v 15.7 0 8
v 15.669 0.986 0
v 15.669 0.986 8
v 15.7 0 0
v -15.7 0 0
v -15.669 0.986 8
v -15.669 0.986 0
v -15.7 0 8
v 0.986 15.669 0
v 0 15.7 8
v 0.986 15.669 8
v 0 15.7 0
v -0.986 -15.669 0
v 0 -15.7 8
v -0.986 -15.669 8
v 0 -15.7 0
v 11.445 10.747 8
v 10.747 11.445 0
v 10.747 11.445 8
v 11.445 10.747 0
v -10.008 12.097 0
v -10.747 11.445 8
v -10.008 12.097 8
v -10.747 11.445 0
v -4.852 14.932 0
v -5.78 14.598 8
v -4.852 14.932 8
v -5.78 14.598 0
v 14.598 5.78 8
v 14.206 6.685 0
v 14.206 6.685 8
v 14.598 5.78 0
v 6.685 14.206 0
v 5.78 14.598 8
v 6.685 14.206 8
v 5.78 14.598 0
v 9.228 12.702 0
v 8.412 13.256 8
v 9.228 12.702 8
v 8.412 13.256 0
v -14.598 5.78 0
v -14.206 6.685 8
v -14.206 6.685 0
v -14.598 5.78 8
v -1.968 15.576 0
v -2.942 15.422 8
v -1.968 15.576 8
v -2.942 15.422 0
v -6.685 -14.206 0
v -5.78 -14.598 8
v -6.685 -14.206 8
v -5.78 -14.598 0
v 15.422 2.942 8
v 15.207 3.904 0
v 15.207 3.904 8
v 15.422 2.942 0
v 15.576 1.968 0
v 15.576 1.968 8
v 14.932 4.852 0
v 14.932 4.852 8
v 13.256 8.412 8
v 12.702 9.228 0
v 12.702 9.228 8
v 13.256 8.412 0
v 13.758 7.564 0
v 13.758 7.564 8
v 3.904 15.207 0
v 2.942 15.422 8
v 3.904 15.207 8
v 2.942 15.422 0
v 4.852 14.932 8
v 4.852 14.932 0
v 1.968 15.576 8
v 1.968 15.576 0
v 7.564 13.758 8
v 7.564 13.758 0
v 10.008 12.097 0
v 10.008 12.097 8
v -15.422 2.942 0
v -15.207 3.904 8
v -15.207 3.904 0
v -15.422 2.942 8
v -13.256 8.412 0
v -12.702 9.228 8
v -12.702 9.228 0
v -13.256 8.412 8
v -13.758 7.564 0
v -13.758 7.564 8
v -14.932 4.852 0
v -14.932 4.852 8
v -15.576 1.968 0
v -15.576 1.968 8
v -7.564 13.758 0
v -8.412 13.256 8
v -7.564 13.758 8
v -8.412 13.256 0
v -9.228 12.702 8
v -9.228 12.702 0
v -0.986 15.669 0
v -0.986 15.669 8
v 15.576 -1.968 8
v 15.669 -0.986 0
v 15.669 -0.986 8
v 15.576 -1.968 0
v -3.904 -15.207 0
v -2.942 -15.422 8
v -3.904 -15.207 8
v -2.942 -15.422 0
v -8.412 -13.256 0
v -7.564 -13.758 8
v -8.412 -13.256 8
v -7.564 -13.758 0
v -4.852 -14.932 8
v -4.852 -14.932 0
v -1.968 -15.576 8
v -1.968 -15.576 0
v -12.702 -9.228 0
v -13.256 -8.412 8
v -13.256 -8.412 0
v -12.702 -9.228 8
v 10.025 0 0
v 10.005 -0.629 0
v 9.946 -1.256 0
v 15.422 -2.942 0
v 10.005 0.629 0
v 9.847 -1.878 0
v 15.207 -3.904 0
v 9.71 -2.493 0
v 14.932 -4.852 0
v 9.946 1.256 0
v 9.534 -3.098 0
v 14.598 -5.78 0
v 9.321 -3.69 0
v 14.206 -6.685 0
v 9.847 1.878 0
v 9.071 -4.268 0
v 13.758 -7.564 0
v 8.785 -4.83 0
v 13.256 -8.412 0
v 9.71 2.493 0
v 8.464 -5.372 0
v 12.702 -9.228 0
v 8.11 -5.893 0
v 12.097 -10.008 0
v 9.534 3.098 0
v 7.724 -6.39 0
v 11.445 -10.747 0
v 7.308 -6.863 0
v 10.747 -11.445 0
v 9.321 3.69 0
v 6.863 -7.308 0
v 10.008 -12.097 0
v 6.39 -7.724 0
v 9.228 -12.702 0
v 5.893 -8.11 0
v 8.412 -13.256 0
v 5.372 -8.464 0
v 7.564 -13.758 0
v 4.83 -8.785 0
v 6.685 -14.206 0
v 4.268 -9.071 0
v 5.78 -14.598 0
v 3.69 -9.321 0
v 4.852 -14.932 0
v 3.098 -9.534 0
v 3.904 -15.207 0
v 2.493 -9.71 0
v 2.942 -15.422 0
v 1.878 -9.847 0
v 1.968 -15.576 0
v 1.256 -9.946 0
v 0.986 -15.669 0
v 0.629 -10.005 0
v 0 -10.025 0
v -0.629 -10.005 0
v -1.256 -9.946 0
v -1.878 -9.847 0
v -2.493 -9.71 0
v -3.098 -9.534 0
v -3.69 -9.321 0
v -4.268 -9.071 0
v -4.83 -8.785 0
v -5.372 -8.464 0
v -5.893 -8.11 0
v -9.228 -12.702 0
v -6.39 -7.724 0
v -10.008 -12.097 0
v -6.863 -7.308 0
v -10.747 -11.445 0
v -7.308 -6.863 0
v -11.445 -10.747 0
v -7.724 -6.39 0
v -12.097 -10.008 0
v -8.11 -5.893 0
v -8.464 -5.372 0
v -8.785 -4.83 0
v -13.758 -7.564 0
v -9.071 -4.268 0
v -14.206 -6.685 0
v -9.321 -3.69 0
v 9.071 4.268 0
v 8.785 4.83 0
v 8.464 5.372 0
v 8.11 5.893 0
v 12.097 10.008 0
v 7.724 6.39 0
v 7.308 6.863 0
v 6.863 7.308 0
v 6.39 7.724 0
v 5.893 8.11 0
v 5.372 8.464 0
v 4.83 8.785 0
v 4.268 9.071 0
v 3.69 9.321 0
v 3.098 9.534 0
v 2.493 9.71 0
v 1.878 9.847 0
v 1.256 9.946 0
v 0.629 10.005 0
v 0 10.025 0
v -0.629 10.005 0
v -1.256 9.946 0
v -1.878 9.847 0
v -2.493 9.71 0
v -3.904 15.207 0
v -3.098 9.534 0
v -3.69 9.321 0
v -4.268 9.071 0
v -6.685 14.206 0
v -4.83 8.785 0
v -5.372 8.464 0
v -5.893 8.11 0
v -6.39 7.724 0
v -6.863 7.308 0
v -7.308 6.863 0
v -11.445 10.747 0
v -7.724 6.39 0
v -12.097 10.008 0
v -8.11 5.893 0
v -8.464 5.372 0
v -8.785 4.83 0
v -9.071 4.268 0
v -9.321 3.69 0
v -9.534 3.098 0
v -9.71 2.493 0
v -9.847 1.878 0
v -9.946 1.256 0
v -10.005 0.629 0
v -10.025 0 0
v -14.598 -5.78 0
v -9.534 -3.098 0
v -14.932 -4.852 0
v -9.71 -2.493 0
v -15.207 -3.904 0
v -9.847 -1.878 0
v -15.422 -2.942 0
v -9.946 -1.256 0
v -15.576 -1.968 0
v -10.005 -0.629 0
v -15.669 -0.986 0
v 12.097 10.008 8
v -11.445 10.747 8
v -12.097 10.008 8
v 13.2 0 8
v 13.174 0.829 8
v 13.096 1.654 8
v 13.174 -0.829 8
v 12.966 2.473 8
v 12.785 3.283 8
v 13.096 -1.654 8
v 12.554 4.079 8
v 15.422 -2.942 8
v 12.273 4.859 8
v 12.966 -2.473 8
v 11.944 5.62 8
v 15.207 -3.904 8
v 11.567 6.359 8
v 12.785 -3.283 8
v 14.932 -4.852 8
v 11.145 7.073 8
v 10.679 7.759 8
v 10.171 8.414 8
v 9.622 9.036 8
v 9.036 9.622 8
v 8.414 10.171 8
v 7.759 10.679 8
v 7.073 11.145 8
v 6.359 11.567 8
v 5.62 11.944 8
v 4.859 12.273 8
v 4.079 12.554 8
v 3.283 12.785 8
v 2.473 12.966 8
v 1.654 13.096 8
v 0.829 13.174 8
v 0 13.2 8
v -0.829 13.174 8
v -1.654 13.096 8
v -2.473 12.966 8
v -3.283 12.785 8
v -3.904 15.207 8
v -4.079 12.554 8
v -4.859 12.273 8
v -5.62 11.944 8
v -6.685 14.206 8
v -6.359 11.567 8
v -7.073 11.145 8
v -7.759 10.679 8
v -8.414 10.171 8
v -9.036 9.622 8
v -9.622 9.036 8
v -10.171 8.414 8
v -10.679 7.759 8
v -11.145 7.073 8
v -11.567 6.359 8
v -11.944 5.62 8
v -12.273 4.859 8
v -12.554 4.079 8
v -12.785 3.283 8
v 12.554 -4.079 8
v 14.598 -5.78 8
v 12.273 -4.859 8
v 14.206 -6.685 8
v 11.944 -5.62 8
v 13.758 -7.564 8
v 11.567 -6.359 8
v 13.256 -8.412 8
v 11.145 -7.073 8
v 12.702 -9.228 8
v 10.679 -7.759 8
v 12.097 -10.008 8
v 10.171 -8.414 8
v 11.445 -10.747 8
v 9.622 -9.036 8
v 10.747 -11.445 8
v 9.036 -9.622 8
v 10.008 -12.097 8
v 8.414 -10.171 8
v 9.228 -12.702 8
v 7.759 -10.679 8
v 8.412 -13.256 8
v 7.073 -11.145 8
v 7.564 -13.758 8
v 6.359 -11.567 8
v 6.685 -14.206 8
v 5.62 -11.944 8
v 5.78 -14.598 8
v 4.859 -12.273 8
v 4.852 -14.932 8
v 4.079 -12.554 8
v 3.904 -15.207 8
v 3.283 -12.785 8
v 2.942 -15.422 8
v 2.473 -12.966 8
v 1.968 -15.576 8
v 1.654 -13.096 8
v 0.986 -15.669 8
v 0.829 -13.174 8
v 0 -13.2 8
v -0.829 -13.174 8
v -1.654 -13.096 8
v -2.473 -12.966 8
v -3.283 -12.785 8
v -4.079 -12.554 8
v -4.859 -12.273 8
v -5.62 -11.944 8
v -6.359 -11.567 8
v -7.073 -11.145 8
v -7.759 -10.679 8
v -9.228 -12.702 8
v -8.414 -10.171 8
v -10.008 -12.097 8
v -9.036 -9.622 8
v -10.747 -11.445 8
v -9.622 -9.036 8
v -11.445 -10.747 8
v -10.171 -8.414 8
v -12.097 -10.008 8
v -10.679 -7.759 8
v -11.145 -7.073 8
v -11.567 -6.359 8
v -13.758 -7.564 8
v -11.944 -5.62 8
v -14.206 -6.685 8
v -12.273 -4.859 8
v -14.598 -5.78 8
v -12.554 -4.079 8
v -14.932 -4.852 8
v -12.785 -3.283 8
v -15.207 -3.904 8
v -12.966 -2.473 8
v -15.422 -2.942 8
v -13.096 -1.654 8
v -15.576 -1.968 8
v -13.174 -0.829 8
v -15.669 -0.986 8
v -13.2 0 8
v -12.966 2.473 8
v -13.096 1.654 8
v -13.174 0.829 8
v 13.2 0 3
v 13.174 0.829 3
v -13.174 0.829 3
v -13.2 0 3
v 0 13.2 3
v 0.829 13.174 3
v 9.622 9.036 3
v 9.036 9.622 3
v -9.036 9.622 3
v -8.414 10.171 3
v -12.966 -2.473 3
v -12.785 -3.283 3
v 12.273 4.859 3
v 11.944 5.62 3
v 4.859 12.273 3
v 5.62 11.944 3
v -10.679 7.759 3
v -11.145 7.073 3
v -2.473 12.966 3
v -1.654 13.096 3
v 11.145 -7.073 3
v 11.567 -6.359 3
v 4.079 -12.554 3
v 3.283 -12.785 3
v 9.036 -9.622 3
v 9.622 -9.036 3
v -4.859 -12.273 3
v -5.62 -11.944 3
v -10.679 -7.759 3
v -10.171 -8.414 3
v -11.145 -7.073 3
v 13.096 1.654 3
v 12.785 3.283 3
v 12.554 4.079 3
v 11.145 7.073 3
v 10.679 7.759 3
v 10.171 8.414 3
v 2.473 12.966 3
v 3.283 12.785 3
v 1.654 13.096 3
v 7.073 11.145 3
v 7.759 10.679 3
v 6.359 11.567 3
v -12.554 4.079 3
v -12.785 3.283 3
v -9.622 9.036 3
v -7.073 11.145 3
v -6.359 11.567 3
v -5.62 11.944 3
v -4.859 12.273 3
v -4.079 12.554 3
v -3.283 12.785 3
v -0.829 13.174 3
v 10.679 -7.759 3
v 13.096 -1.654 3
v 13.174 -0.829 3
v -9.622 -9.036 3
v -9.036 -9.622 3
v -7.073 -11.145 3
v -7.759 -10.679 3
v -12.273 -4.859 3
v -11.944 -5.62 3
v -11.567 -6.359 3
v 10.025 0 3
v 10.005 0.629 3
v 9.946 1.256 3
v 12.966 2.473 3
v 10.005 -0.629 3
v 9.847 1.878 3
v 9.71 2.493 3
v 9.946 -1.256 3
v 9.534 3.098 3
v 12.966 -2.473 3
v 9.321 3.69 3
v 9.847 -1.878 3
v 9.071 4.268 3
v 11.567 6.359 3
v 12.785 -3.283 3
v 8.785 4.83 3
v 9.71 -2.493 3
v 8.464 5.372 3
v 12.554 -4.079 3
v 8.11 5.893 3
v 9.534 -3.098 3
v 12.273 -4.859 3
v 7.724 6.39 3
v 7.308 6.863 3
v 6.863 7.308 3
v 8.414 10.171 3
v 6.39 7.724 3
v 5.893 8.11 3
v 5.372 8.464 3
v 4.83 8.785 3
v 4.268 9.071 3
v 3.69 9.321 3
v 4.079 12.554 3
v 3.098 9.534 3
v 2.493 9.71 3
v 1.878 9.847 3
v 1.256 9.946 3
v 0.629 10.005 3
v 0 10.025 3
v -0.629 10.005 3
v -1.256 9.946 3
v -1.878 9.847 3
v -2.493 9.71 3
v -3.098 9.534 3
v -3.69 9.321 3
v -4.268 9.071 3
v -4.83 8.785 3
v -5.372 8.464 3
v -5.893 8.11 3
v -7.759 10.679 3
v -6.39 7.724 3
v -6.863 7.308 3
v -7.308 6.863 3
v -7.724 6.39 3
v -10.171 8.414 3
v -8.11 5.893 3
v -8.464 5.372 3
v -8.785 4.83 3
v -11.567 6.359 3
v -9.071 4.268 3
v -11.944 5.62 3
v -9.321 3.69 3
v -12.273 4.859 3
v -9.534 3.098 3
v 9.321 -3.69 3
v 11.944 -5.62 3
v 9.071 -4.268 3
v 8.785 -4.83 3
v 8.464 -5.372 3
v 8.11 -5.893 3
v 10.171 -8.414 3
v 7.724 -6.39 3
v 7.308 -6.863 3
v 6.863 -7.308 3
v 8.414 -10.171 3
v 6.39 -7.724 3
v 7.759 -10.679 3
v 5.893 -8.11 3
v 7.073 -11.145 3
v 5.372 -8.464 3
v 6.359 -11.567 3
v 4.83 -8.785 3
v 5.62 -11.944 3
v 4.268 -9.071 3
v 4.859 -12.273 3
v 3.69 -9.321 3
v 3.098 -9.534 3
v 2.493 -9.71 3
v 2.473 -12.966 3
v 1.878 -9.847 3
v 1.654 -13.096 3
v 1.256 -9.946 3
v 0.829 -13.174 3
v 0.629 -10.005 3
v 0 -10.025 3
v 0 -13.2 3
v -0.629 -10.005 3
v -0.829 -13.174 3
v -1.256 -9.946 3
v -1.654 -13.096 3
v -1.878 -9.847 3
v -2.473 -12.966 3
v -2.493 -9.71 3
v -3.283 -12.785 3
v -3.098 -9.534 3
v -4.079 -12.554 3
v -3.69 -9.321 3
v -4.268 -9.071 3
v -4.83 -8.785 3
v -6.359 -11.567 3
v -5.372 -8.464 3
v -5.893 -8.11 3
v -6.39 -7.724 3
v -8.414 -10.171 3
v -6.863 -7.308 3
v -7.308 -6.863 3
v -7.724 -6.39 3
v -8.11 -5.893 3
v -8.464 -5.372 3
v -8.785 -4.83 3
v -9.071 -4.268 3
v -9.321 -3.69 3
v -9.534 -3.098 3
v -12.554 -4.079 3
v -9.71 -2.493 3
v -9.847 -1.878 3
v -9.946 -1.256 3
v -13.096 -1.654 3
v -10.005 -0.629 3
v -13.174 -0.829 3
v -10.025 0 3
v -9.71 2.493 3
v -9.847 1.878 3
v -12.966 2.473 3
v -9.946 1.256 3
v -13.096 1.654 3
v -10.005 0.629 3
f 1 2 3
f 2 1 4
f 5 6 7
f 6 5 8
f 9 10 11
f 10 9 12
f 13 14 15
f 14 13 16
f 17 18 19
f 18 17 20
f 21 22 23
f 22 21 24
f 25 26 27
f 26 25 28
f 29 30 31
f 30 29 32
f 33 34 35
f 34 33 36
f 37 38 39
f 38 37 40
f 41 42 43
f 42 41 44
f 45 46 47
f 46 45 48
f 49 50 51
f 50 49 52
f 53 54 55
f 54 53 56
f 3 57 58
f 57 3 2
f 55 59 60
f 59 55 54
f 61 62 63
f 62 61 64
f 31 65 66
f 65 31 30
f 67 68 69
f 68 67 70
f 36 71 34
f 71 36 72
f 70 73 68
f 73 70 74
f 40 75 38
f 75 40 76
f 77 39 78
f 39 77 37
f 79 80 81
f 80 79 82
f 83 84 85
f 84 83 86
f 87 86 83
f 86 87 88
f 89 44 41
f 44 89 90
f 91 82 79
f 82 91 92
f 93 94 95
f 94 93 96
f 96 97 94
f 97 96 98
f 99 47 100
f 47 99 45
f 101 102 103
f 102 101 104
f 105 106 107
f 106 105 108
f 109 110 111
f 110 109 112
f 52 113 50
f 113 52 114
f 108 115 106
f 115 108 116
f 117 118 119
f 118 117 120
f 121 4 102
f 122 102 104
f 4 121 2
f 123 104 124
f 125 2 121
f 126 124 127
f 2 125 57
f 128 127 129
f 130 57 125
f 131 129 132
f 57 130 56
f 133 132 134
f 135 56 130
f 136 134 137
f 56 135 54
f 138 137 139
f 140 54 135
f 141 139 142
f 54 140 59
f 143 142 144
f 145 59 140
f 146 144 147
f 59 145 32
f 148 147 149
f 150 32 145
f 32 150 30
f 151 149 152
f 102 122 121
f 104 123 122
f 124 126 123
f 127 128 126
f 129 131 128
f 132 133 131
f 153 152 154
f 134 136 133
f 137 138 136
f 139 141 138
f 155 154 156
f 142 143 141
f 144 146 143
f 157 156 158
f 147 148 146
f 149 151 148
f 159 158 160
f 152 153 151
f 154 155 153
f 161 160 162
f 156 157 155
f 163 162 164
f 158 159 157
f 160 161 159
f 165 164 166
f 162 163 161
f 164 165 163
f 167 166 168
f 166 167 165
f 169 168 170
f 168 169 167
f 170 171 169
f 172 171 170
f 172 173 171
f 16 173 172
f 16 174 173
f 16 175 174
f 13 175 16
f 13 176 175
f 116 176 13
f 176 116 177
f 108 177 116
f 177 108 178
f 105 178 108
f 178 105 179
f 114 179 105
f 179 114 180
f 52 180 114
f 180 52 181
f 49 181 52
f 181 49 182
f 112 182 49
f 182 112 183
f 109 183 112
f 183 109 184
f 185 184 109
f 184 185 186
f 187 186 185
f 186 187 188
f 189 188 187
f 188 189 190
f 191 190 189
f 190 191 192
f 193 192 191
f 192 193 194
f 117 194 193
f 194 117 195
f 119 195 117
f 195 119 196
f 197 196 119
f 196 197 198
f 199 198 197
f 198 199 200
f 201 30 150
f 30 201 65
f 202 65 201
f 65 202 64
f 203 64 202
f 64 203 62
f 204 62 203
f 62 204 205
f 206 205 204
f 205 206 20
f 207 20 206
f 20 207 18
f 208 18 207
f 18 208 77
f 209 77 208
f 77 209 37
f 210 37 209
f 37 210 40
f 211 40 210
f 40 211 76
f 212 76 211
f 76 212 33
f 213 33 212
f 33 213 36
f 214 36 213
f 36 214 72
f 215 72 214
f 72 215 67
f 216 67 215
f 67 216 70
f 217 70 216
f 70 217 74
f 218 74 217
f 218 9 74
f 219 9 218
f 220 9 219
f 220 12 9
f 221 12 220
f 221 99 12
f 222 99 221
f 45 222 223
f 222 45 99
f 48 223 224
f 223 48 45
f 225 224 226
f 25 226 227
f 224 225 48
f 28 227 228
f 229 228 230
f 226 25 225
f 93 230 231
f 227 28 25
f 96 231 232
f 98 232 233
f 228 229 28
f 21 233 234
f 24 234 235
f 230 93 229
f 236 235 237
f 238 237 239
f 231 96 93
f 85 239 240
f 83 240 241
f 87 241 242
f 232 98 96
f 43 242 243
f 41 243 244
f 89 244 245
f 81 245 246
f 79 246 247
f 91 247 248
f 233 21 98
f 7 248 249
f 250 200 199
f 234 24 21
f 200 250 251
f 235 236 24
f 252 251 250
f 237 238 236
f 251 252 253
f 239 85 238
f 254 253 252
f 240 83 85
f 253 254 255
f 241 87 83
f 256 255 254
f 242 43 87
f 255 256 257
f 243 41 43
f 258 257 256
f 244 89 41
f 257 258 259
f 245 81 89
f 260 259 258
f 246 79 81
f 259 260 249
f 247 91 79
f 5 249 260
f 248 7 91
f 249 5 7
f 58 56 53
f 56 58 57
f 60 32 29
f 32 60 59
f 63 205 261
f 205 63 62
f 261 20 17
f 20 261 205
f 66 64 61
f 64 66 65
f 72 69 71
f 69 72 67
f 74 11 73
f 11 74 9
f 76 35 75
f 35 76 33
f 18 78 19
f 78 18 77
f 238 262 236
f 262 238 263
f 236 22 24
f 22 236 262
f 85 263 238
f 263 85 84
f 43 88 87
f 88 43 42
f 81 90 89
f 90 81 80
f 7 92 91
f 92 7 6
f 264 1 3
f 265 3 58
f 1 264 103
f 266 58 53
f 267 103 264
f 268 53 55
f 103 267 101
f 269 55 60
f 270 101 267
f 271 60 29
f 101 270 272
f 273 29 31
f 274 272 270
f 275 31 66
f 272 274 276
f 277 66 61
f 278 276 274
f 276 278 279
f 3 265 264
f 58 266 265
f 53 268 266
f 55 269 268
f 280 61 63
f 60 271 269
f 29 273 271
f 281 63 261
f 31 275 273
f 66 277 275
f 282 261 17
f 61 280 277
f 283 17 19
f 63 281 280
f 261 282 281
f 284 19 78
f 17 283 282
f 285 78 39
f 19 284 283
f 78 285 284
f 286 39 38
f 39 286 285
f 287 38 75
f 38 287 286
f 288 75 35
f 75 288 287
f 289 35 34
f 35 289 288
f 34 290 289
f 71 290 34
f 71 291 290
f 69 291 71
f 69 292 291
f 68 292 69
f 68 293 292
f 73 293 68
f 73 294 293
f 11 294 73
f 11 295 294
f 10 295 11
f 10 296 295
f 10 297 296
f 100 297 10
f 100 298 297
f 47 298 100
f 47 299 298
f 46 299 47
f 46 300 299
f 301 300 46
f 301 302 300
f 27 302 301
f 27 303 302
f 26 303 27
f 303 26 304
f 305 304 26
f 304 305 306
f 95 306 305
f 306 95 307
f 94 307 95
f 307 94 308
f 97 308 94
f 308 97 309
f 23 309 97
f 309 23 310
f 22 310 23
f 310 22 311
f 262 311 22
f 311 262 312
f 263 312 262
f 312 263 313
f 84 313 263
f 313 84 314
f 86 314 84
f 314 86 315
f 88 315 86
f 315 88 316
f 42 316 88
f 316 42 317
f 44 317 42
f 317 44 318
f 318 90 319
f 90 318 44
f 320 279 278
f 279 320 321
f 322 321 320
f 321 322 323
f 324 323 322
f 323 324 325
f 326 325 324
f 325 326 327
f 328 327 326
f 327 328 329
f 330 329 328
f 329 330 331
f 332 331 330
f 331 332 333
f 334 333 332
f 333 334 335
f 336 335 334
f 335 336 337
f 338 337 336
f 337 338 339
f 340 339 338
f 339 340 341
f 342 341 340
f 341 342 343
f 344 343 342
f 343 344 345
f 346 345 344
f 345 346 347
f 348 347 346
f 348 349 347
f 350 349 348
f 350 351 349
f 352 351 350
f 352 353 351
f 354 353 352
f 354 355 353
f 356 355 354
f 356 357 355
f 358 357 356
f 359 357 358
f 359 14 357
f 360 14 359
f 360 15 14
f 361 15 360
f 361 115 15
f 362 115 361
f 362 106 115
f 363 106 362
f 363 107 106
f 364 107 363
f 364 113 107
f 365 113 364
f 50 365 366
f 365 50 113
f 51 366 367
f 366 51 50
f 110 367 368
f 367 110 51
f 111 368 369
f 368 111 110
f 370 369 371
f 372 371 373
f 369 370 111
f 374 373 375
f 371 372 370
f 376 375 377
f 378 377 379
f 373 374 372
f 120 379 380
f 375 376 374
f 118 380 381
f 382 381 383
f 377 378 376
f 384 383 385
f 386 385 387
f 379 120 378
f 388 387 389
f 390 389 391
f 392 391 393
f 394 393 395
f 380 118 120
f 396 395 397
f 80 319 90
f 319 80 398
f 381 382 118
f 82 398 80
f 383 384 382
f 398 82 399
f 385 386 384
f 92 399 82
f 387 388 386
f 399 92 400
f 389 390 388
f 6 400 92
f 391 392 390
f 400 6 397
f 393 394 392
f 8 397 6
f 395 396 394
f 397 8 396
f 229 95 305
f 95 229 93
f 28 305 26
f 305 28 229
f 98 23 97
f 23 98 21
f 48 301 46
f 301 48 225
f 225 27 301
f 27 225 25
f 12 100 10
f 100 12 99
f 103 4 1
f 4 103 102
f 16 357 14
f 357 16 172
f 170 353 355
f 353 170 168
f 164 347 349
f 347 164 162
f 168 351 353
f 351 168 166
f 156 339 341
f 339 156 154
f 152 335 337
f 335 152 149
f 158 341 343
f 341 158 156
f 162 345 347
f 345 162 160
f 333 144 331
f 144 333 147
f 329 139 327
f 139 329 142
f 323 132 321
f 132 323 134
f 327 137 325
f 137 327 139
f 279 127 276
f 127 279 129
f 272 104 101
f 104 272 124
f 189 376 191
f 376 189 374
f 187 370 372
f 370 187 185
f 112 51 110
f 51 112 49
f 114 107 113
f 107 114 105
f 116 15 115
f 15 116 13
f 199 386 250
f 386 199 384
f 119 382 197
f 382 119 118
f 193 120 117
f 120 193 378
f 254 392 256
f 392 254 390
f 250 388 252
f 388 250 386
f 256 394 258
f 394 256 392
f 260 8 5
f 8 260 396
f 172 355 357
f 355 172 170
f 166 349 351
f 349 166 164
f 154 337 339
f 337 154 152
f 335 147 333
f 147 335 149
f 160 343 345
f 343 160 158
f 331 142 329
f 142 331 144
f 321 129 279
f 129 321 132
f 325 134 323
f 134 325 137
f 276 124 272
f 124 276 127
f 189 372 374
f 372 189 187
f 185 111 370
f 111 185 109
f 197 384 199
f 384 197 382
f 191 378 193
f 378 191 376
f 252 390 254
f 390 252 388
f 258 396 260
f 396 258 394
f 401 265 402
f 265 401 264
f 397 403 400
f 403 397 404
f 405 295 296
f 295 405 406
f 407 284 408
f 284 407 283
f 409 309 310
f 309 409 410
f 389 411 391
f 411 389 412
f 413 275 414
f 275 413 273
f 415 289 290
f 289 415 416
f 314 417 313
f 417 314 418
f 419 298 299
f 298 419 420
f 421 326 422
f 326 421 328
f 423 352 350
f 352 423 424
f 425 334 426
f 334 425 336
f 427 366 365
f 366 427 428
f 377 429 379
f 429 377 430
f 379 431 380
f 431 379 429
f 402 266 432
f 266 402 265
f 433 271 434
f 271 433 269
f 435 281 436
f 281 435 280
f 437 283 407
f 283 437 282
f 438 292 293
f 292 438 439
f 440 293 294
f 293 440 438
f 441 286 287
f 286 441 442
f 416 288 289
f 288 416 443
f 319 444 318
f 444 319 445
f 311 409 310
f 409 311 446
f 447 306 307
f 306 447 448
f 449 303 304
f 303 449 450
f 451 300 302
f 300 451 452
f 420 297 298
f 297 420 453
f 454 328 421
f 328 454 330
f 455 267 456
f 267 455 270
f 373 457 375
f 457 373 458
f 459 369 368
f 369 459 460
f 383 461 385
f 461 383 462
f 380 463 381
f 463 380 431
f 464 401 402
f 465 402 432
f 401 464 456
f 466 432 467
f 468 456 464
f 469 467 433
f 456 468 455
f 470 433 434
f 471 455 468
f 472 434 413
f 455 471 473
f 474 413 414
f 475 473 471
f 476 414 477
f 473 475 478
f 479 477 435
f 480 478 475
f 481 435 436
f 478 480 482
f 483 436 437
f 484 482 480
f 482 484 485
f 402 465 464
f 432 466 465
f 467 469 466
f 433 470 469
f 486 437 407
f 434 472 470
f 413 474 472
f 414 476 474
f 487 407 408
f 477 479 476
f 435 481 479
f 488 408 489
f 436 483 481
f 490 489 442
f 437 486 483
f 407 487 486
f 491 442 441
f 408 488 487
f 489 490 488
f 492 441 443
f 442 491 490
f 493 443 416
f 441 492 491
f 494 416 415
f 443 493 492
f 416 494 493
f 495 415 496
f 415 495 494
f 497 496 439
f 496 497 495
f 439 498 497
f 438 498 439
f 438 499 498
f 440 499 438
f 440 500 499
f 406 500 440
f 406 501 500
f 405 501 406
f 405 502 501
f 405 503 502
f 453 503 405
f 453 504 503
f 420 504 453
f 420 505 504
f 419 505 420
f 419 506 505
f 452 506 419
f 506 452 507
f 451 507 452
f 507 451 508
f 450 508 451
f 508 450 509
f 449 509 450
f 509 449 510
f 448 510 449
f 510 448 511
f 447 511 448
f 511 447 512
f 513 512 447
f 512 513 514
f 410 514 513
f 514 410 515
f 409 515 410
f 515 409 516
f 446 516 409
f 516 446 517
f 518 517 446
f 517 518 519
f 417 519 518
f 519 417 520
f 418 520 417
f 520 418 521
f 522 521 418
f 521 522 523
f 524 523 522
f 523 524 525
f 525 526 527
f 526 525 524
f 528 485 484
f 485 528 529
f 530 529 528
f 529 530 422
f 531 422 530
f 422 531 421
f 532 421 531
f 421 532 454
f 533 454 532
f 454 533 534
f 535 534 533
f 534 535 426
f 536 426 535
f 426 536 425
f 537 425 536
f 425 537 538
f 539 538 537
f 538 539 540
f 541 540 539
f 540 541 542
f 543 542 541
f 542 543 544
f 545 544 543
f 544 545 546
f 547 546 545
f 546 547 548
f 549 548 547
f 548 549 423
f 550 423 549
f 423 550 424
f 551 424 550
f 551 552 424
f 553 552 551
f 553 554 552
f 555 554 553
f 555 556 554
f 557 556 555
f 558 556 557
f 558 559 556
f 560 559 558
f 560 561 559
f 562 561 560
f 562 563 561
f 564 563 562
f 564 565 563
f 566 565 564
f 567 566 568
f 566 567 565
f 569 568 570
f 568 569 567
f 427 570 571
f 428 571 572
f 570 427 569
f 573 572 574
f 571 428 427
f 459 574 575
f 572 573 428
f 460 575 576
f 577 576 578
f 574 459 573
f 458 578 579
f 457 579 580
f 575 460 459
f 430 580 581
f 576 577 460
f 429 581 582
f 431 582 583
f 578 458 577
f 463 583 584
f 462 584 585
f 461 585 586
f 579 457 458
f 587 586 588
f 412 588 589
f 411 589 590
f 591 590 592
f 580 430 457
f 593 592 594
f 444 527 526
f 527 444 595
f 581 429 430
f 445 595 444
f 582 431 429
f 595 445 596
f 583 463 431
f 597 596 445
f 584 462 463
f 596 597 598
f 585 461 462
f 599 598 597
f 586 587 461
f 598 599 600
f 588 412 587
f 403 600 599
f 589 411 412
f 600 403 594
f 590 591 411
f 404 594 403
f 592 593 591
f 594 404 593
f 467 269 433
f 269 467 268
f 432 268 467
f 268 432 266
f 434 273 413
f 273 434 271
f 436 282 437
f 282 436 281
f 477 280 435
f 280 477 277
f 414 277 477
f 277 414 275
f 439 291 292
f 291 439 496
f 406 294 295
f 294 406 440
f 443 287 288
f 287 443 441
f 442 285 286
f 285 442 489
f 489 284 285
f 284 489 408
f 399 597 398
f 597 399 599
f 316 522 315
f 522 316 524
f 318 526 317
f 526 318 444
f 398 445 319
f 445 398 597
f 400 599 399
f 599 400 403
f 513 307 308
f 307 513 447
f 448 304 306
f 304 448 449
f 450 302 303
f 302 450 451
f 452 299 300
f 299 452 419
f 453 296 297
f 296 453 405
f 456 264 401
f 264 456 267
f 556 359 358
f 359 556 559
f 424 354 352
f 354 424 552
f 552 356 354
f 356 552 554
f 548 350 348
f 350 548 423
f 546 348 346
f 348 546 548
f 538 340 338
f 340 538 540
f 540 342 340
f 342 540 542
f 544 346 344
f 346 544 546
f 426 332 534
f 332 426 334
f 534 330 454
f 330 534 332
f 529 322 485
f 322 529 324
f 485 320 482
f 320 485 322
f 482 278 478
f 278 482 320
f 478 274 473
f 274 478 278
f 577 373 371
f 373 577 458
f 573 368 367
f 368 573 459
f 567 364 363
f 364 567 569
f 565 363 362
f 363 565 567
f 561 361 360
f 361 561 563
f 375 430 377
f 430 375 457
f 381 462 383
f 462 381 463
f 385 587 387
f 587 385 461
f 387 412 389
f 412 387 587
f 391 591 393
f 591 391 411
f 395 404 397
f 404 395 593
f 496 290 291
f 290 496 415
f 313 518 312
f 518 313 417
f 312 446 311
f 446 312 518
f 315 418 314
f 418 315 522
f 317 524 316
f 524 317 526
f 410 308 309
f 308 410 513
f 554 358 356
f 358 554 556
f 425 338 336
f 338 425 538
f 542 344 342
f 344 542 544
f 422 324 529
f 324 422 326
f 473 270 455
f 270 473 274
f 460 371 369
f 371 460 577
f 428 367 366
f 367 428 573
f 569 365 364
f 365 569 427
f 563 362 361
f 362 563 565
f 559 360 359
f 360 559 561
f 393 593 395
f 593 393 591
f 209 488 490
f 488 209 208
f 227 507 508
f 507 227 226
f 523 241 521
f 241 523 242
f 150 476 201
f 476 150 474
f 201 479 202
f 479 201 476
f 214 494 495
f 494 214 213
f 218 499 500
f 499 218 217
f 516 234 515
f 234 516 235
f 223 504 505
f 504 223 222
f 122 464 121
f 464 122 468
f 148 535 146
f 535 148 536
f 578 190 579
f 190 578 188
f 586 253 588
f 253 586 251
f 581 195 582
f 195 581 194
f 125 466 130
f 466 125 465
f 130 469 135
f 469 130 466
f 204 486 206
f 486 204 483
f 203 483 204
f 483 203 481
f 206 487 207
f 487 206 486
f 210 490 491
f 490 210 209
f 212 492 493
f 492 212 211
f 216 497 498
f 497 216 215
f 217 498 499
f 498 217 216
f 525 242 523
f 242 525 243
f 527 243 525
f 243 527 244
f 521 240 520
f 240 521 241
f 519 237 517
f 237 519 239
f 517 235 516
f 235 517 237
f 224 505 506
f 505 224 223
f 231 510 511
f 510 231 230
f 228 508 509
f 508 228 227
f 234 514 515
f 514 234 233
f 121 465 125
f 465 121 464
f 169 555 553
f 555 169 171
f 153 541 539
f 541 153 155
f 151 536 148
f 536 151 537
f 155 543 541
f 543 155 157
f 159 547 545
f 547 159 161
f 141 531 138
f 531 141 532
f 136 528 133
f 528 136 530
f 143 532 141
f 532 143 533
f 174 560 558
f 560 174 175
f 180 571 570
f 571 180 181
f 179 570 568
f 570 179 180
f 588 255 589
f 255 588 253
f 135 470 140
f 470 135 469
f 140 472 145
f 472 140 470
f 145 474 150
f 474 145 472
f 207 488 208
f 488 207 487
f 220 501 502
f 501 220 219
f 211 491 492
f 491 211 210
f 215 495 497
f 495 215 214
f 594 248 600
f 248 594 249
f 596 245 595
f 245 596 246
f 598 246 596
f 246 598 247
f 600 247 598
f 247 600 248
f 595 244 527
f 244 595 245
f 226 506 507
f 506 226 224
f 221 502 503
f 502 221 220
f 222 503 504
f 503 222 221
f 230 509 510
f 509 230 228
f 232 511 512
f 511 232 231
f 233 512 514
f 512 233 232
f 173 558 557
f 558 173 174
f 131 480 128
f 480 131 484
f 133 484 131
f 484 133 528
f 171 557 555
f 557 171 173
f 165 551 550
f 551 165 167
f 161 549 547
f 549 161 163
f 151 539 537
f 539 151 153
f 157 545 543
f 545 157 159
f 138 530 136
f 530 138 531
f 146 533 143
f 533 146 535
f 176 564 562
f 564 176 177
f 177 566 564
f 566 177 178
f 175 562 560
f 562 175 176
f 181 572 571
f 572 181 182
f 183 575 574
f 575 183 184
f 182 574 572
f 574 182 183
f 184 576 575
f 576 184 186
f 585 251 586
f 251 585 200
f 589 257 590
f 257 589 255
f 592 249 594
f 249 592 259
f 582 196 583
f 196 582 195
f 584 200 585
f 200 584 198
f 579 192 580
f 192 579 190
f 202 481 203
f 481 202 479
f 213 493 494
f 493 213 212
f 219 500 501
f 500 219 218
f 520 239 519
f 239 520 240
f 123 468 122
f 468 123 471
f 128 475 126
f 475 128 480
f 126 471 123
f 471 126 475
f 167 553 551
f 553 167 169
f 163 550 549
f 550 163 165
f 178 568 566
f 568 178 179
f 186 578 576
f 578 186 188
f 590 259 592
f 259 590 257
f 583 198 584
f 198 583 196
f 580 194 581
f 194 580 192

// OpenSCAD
$fn=100;

X=1.0;
outer_dia=1*25.4;
inner_dia=0.75*25.4;

difference(){
    difference(){
        cylinder(d=(outer_dia+6),h=8);
        translate([0,0,3]) cylinder(d=(outer_dia+X),h=8);
    }
    translate([0,0,-0.5]) cylinder(d=(inner_dia+X),h=4);
}
